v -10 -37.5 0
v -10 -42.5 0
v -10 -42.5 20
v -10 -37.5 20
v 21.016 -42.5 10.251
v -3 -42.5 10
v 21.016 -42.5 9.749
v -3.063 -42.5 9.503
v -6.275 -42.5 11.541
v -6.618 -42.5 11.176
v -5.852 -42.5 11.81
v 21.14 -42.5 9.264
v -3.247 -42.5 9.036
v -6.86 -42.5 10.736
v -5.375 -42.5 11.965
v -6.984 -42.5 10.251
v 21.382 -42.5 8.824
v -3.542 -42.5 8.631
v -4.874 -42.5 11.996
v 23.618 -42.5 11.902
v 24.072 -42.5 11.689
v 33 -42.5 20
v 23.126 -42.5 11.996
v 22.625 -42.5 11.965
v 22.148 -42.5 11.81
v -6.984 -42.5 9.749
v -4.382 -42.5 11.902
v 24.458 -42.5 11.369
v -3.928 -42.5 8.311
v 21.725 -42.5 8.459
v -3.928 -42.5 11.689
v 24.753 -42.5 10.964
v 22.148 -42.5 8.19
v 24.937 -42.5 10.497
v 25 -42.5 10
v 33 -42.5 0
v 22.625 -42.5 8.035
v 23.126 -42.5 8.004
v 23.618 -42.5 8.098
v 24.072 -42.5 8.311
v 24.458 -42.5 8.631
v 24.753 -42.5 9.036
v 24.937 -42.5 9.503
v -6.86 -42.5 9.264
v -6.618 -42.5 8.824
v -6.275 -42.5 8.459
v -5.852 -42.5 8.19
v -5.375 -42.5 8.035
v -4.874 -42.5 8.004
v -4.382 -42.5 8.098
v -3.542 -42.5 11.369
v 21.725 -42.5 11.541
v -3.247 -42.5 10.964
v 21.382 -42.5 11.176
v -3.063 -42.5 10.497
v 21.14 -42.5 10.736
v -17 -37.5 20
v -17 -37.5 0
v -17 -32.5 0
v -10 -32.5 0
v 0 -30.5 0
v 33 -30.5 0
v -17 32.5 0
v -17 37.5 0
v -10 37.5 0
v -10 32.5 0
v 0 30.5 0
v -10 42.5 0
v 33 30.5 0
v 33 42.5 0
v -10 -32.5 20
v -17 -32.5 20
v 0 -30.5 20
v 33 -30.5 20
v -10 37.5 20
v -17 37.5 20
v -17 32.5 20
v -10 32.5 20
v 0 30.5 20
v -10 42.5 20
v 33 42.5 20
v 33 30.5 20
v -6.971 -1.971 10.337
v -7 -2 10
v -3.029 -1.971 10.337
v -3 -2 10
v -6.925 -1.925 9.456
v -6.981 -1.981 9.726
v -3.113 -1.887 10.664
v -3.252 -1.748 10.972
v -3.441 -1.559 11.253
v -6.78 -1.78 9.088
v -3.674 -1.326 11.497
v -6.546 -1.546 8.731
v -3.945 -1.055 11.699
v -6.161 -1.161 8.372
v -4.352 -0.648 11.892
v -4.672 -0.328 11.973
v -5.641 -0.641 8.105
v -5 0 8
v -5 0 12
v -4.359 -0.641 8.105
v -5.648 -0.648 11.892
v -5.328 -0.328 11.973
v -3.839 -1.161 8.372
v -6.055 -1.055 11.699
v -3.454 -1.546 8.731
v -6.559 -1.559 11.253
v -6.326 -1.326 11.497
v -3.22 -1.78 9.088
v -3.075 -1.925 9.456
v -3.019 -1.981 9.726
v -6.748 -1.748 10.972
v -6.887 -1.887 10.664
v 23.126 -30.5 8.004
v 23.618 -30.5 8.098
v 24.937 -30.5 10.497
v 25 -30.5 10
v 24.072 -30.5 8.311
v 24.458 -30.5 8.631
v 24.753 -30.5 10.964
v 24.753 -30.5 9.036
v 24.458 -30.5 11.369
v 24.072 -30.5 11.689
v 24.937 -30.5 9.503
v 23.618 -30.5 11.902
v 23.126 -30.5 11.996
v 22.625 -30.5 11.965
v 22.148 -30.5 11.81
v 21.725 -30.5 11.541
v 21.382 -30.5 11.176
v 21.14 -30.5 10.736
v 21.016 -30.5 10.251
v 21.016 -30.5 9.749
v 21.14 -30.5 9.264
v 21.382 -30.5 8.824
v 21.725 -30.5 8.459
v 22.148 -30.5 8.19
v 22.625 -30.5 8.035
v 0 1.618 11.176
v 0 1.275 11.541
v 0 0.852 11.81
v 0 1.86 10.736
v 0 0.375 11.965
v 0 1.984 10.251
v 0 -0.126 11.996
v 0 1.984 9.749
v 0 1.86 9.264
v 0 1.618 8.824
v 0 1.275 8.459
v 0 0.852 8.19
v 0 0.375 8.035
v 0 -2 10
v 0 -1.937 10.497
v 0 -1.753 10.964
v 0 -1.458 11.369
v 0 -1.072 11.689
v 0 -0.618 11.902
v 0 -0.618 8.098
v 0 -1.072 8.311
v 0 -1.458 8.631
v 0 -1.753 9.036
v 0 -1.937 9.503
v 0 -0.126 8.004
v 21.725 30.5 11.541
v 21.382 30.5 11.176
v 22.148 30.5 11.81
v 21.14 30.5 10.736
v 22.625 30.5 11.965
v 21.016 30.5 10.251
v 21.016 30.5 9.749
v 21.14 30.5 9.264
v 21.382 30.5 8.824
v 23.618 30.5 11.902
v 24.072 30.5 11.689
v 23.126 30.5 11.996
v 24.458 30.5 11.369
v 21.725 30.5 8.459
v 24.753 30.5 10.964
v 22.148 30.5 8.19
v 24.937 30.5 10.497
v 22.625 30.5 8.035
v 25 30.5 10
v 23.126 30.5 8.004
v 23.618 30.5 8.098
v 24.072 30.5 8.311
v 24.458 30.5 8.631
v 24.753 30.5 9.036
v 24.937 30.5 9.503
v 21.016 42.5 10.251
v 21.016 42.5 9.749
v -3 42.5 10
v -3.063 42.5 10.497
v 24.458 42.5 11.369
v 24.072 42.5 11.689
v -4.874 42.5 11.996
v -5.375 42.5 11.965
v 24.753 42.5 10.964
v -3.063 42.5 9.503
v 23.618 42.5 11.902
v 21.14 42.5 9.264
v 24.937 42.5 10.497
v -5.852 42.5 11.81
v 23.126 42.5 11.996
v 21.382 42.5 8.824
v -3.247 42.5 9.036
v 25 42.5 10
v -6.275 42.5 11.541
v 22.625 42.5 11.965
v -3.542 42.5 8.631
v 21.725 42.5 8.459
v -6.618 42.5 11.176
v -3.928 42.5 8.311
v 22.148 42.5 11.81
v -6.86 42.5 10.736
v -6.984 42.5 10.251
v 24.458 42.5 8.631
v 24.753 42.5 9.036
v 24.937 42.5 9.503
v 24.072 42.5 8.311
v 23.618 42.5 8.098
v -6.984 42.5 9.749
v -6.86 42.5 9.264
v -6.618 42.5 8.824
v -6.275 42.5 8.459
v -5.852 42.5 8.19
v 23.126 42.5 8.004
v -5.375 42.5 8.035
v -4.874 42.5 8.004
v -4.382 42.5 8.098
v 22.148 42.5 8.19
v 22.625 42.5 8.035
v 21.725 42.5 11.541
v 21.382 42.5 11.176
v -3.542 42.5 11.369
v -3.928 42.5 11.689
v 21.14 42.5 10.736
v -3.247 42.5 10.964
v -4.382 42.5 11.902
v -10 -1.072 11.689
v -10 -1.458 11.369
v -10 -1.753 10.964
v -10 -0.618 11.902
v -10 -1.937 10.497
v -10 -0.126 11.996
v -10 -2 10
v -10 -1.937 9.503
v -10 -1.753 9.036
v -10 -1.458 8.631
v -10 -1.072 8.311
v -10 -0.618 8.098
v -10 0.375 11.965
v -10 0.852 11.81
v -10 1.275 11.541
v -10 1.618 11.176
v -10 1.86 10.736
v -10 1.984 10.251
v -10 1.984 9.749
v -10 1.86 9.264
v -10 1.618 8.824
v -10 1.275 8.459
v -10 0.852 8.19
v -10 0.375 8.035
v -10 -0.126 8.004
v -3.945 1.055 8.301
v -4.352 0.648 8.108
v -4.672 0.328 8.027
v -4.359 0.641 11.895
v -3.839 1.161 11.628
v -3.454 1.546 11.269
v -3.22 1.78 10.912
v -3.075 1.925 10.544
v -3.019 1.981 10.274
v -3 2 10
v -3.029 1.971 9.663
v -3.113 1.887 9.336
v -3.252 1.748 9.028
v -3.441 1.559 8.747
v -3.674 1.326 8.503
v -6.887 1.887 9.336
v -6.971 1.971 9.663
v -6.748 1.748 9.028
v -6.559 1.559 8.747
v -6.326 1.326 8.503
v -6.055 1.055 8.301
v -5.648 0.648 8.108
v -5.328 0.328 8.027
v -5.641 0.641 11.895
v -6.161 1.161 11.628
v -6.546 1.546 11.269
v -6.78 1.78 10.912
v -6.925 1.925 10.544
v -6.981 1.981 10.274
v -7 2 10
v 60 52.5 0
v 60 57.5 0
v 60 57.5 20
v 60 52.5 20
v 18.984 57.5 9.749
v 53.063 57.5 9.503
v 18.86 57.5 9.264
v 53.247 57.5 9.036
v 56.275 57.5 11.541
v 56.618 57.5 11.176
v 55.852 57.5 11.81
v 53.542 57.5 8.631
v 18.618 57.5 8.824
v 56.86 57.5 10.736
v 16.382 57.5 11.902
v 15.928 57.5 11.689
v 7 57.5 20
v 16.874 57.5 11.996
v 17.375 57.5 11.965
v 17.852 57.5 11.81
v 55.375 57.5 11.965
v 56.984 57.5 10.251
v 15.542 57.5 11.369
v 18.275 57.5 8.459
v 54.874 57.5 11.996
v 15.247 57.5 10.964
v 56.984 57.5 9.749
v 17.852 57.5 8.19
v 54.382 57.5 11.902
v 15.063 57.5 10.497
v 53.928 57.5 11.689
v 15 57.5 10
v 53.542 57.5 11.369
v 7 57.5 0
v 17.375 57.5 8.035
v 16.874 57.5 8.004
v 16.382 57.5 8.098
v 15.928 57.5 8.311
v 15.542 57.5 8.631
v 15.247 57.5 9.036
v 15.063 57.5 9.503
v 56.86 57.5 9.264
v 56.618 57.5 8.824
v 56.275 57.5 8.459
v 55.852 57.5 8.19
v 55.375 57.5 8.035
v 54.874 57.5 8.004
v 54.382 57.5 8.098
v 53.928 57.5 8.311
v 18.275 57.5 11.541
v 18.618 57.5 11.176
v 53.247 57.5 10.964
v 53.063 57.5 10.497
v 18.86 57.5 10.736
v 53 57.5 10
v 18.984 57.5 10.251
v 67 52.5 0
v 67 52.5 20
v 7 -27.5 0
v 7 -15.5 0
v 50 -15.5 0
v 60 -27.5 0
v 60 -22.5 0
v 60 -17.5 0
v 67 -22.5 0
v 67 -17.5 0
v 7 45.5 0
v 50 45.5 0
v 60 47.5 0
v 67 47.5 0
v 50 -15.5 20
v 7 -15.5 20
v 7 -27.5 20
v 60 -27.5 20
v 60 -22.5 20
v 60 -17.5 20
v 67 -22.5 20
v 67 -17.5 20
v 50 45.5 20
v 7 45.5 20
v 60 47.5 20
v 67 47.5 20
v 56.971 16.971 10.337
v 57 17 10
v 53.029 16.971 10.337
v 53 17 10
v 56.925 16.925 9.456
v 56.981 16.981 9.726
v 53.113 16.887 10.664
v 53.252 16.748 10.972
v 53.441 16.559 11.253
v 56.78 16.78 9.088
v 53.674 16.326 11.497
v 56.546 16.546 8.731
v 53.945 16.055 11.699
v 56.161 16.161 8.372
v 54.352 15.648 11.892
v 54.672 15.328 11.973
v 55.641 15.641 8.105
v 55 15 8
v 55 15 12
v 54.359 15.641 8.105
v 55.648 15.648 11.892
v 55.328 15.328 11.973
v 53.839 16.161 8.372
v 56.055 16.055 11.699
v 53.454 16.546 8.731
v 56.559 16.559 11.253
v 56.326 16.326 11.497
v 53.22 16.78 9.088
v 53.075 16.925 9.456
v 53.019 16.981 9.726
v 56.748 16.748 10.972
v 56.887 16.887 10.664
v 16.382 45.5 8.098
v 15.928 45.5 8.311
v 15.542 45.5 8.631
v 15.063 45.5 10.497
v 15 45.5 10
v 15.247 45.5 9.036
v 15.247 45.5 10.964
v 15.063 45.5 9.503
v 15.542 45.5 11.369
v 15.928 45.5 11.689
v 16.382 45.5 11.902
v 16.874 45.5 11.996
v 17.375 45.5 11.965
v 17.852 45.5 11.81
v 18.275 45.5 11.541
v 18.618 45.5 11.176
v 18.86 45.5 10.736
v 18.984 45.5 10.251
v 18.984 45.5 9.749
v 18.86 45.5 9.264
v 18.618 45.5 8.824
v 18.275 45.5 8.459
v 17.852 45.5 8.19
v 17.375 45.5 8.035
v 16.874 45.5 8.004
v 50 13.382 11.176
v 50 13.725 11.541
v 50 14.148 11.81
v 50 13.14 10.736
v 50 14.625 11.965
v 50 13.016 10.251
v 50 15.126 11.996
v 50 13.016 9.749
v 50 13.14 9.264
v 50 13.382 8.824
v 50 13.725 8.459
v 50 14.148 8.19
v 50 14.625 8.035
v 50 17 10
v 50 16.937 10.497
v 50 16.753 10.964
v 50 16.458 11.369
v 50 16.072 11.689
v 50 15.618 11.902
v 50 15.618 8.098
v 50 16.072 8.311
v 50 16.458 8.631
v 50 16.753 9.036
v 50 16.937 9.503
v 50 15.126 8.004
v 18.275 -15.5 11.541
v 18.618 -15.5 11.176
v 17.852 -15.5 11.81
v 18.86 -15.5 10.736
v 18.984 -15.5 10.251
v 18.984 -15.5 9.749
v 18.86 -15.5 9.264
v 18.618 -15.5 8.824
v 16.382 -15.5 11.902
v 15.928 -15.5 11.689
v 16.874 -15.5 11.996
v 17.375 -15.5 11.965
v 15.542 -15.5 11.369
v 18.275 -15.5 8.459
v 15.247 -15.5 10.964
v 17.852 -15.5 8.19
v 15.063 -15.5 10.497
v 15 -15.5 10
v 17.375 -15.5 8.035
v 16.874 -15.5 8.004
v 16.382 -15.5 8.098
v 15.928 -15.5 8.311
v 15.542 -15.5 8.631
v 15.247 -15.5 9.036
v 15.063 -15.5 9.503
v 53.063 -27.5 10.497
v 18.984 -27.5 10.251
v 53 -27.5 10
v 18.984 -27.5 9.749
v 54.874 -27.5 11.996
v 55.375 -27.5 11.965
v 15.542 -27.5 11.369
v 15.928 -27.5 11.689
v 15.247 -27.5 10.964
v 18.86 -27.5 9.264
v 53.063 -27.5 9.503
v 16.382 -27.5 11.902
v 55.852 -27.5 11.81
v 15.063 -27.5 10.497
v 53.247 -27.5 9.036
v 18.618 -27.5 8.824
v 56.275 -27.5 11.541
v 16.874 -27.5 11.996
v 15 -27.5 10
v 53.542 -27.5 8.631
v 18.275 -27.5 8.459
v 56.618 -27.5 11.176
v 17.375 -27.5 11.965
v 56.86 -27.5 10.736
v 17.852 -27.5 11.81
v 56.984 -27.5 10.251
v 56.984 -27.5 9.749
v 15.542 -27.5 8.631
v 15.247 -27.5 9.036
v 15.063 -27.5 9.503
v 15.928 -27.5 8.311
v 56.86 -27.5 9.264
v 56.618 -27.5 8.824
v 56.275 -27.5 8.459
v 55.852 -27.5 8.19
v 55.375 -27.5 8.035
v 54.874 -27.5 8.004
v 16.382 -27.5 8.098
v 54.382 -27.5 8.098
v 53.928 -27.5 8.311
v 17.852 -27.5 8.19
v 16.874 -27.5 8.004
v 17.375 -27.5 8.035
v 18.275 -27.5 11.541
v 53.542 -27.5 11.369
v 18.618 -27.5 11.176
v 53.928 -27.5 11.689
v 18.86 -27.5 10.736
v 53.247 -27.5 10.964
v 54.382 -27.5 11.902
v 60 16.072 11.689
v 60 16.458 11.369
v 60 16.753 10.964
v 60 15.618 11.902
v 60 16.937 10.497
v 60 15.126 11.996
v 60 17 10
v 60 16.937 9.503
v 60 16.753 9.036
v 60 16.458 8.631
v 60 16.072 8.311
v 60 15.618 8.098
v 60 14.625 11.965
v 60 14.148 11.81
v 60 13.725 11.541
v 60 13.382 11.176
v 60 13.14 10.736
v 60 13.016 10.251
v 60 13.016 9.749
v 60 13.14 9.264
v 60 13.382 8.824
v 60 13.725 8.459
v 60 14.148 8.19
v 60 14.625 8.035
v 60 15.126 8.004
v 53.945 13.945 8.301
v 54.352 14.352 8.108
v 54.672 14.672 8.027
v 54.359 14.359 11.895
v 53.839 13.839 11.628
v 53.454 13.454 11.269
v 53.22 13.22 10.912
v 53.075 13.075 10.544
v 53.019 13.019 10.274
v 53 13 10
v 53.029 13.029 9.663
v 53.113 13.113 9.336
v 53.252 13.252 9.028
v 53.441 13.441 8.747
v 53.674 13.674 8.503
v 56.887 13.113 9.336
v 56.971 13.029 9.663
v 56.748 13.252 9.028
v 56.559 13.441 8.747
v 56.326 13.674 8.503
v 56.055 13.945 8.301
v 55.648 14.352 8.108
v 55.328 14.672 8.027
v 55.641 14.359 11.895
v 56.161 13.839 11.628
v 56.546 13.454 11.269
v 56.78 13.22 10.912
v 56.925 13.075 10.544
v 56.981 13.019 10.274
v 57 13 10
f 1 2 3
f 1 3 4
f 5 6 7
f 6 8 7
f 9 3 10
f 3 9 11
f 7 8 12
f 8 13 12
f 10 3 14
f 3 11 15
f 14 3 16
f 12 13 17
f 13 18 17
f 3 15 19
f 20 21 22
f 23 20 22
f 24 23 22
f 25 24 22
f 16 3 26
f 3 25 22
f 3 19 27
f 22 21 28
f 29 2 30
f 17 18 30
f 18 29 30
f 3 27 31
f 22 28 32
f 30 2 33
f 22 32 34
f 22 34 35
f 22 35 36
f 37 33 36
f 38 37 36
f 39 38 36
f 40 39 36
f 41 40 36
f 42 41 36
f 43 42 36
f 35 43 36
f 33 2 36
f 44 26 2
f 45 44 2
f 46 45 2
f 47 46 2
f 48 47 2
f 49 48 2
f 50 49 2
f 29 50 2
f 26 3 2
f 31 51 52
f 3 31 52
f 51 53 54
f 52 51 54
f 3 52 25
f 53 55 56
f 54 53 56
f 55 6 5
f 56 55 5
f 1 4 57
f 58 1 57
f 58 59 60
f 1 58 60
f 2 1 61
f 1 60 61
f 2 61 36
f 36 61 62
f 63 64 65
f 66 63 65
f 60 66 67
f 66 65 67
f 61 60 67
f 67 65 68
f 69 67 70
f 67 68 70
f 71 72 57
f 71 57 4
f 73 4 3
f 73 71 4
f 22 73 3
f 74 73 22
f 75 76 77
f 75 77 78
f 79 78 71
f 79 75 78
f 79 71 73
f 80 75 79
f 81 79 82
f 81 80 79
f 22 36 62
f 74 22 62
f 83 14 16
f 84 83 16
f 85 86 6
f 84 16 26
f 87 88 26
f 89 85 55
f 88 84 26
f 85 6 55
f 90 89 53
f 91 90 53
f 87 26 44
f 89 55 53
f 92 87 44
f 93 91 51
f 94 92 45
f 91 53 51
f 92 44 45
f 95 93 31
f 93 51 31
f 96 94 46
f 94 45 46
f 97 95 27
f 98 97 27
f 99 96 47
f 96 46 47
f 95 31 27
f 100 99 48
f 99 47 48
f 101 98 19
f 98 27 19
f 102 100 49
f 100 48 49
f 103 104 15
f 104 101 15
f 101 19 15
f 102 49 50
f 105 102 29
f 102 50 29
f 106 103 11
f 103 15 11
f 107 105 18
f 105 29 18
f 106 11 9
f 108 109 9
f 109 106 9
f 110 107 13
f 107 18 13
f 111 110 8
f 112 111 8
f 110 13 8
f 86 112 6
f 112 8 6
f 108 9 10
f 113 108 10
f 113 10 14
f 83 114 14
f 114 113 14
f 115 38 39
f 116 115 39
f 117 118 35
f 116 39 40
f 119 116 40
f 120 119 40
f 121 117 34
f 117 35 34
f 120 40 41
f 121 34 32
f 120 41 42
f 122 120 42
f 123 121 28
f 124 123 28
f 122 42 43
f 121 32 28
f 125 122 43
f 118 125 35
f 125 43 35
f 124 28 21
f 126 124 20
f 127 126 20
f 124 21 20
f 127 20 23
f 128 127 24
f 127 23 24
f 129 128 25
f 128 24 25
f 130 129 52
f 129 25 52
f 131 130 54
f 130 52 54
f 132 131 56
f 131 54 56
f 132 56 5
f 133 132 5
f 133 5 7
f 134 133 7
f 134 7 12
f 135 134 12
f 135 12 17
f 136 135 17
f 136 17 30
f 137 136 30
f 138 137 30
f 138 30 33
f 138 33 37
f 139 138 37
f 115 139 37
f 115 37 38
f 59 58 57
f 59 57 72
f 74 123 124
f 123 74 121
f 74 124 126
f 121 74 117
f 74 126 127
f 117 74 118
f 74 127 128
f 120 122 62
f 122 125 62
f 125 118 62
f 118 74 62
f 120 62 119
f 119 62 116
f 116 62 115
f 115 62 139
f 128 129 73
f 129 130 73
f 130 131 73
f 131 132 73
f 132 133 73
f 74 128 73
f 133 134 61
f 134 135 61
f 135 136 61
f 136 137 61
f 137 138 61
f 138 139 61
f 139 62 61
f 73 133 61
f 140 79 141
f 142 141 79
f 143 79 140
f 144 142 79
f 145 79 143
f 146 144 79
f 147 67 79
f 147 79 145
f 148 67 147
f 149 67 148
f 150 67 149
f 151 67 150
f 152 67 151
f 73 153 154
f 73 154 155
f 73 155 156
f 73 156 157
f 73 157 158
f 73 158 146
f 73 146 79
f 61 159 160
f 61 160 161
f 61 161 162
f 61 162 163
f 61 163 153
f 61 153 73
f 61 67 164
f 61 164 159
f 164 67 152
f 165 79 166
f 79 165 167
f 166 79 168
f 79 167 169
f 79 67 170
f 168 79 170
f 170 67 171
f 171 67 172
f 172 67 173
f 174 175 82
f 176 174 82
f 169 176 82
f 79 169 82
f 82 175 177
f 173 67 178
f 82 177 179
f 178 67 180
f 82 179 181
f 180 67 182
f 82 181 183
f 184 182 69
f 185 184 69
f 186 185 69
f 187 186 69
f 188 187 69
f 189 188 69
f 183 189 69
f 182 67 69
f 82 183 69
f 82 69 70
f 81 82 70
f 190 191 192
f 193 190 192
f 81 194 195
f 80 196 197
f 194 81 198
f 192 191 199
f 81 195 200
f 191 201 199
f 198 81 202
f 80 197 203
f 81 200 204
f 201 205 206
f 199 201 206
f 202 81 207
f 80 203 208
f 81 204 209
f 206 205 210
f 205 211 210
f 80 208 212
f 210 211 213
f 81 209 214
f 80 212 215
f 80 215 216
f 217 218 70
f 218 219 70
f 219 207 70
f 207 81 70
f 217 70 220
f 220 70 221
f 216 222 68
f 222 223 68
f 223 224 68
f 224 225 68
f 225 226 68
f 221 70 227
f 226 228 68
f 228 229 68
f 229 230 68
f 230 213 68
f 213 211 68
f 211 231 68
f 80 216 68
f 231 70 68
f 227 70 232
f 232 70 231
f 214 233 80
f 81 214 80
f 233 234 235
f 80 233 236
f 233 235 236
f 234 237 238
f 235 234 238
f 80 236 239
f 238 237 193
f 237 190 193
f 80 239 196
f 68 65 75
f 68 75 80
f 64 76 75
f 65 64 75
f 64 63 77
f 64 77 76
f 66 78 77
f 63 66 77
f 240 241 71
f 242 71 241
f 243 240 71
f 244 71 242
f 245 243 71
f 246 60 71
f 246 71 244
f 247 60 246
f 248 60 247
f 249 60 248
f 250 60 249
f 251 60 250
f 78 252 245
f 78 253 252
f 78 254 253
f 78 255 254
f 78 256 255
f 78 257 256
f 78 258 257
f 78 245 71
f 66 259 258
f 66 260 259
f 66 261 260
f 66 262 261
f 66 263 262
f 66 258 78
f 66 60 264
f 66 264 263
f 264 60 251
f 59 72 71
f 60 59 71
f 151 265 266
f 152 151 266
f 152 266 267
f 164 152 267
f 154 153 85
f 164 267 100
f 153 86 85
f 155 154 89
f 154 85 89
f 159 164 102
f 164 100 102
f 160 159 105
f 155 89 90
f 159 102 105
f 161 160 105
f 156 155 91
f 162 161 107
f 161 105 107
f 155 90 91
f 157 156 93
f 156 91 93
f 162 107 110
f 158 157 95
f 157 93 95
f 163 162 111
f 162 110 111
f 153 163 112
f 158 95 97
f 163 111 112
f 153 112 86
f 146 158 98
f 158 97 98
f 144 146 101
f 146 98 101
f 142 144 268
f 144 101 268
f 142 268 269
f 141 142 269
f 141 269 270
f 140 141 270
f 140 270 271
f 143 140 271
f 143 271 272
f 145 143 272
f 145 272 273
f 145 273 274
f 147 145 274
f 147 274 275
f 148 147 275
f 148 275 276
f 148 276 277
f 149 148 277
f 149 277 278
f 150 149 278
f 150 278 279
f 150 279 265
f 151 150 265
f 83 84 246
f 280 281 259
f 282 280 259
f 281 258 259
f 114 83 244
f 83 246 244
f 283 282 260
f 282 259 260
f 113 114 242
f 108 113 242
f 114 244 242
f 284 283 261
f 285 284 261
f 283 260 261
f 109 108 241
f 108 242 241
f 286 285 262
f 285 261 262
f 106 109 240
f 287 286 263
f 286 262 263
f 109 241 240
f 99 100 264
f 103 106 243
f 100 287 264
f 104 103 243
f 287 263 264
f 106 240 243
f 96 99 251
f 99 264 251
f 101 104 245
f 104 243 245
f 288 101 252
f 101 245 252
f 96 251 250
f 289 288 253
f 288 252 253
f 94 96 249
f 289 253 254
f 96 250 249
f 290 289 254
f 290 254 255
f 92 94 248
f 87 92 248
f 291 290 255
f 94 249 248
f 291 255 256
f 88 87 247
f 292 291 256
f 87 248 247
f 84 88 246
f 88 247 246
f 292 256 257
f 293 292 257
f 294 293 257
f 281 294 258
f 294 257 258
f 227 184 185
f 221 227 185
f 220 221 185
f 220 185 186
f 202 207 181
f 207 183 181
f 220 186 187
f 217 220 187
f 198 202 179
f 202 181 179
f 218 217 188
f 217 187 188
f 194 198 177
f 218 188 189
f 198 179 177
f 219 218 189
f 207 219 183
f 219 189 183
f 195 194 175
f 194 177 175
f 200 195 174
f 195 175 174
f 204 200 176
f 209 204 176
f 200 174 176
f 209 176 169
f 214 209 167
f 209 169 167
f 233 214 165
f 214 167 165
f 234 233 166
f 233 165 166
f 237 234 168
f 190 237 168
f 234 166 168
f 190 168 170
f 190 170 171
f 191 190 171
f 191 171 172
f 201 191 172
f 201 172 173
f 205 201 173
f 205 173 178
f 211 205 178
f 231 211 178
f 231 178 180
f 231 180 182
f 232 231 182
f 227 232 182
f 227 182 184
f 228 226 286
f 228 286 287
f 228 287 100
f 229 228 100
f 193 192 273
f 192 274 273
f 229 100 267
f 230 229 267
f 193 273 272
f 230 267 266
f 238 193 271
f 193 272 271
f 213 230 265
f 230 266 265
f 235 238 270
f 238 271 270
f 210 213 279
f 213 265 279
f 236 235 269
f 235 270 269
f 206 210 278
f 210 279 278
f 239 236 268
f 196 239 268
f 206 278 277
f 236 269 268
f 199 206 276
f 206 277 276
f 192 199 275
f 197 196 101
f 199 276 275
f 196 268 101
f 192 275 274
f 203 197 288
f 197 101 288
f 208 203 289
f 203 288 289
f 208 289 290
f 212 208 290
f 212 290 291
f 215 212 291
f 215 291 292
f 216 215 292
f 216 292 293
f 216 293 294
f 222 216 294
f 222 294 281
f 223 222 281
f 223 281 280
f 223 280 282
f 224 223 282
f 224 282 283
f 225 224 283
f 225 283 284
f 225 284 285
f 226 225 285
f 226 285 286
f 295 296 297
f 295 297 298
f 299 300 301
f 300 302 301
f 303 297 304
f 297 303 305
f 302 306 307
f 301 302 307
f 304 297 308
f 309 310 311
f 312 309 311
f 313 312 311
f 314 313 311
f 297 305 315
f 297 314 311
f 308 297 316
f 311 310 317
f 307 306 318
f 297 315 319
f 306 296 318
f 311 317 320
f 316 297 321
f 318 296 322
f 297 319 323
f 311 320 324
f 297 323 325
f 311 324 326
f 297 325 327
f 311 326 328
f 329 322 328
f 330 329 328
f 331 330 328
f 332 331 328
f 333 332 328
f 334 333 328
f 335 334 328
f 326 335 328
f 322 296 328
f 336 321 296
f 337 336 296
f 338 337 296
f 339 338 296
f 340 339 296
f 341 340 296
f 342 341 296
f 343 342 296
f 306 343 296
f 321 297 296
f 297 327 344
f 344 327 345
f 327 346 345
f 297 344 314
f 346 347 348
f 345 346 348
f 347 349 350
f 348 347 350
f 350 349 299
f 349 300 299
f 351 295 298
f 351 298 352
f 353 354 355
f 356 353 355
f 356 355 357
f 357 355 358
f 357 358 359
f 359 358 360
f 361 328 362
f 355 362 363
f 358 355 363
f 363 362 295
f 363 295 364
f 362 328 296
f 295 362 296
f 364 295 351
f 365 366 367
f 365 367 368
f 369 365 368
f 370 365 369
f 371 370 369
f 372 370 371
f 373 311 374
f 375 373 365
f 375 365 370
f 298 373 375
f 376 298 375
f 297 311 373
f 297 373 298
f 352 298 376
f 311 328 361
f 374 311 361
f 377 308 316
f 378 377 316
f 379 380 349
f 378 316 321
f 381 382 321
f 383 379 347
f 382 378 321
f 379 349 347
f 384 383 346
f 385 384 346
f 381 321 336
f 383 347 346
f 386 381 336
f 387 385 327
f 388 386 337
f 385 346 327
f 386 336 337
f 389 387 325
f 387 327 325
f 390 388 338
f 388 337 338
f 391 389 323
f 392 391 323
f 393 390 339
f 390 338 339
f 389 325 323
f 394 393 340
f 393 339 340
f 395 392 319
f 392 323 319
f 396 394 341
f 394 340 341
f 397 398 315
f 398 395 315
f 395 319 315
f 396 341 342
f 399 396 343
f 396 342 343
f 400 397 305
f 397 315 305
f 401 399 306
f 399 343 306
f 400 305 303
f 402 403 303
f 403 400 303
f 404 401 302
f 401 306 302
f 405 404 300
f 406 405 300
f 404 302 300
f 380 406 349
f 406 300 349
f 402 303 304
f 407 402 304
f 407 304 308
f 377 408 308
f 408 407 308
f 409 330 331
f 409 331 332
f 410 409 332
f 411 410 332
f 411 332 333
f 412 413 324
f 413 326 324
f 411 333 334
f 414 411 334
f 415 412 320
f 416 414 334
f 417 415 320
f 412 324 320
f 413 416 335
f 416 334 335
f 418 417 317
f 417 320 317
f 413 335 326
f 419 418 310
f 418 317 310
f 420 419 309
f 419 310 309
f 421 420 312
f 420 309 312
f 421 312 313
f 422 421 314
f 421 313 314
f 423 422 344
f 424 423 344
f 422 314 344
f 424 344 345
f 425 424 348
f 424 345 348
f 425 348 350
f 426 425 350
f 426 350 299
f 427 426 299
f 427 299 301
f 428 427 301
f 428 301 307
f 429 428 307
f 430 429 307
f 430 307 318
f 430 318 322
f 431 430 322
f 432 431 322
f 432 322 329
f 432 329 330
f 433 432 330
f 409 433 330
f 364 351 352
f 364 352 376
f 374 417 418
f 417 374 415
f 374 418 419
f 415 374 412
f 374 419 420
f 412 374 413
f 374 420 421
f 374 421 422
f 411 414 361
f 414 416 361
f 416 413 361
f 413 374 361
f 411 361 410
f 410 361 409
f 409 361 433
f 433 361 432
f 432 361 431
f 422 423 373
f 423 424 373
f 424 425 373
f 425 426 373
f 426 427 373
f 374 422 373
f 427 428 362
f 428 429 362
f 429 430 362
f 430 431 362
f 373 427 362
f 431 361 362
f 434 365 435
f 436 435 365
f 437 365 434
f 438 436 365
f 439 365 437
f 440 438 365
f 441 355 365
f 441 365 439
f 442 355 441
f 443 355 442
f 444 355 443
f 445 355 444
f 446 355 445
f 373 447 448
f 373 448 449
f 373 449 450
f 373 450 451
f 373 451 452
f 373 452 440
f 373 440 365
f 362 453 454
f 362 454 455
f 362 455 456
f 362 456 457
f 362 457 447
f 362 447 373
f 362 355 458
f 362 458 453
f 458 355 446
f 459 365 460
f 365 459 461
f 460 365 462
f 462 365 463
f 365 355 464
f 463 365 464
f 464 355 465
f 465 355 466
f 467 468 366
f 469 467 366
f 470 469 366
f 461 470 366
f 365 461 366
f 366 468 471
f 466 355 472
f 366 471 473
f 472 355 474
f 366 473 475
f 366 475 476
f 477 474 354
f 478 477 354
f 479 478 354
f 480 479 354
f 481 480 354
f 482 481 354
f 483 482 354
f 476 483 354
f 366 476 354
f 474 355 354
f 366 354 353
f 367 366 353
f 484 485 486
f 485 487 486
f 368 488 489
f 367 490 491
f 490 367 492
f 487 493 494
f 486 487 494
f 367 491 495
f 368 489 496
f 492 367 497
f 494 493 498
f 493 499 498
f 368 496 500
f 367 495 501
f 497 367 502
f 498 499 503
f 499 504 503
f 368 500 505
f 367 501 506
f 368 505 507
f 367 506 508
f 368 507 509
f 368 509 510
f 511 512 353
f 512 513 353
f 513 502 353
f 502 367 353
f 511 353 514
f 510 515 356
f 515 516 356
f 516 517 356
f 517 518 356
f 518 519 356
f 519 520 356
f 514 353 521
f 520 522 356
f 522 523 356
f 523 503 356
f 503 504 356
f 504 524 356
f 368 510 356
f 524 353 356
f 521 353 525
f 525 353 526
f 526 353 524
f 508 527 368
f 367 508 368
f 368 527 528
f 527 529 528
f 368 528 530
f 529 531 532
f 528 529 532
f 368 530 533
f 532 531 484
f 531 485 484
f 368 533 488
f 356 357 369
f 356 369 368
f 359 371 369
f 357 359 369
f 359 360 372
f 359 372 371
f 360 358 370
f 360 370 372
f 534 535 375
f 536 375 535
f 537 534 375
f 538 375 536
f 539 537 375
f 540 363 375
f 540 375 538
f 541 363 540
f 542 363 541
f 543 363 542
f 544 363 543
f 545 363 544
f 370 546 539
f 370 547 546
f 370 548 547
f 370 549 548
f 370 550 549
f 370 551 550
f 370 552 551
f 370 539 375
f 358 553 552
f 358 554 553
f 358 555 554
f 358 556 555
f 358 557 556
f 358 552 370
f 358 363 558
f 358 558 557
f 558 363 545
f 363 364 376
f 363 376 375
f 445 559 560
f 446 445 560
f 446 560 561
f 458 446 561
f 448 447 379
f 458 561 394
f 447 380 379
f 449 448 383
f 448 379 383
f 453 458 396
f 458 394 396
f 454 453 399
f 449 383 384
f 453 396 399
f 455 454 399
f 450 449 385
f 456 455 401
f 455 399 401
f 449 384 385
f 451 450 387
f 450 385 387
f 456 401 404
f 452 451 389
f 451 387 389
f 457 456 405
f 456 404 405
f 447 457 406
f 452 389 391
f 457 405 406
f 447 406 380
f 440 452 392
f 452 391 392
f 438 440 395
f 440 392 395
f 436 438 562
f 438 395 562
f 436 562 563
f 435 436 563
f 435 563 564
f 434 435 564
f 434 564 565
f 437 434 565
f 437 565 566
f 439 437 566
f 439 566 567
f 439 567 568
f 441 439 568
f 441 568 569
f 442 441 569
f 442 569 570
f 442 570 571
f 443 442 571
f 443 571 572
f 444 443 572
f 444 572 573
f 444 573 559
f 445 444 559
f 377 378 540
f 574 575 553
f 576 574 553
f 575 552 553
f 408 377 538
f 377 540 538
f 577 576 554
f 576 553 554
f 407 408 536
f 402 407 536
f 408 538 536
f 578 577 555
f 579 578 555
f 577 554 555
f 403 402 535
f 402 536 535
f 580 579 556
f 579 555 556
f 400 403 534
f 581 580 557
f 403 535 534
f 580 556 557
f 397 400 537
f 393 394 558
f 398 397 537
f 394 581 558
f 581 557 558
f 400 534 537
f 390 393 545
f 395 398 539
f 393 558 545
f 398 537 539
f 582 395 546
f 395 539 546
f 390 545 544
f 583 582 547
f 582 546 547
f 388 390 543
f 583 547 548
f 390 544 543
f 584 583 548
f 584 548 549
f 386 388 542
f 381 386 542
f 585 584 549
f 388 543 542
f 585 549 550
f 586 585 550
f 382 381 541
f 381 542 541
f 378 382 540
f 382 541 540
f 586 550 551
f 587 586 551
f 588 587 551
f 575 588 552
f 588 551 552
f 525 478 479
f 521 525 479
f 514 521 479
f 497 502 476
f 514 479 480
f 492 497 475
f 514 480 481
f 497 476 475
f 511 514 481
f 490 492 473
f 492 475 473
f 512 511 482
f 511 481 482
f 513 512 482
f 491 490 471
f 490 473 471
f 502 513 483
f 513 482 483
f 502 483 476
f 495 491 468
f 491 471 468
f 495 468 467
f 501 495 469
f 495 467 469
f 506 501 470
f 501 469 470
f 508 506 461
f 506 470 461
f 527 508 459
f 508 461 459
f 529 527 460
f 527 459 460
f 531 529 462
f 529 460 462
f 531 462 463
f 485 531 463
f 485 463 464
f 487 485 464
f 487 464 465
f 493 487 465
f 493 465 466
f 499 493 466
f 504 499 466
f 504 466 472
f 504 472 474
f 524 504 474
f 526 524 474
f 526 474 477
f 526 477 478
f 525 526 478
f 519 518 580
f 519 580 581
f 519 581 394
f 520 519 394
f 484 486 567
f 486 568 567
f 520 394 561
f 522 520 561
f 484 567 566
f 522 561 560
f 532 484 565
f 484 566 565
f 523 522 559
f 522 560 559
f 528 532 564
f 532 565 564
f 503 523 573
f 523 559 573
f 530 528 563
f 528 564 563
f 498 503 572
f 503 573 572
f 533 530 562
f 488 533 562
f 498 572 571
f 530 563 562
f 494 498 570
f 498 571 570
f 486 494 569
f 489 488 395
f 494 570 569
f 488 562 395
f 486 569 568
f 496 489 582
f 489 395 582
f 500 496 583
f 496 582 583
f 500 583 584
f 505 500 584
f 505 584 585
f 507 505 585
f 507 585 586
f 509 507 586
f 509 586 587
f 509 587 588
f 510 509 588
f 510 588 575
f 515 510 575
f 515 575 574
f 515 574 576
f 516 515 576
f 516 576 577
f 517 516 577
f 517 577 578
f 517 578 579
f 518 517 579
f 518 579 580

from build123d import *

# Parameters (mm, degrees)
PAD_DEPTH       = 20
SKETCH004_R     = 2
POCKET002_DEPTH = 43.001
SKETCH005_R     = 2
POCKET003_DEPTH = 85.001
PAD001_DEPTH    = 20
SKETCH007_R     = 2
POCKET004_DEPTH = 53.001
SKETCH008_R     = 2
POCKET005_DEPTH = 85.001


with BuildPart() as soporte_agujero_superior_lateral:
    # Sketch → Pad (new body)
    with BuildSketch(Plane.XY):
        Polygon((-10, -42.5), (33, -42.5), (33, -30.5), (0, -30.5), (0, 30.5), (33, 30.5), (33, 42.5), (-10, 42.5), (-10, 37.5), (-17, 37.5), (-17, 32.5), (-10, 32.5), (-10, -32.5), (-17, -32.5), (-17, -37.5), (-10, -37.5), align=None)
    extrude(amount=PAD_DEPTH)

    # Sketch004 → Pocket002 (cut, through all)
    with BuildSketch(Plane(origin=(-10, 0, 0), x_dir=(0, -1, 0), z_dir=(-1, 0, 0))):
        with Locations((0, 10)):
            Circle(SKETCH004_R)
    extrude(amount=-POCKET002_DEPTH, mode=Mode.SUBTRACT)

    # Sketch005 → Pocket003 (cut, through all)
    with BuildSketch(Plane.XZ.offset(42.5)):
        with Locations((-5, 10)):
            Circle(SKETCH005_R)
        with Locations((23, 10)):
            Circle(SKETCH005_R)
    extrude(amount=-POCKET003_DEPTH, mode=Mode.SUBTRACT)


with BuildPart() as soporte_agujero_superior_lateral001:
    # Sketch006 → Pad001 (new body)
    with BuildSketch(Plane(origin=(50, 15, 0), x_dir=(-1, 0, 0), z_dir=(0, 0, 1))):
        Polygon((-10, -42.5), (43, -42.5), (43, -30.5), (0, -30.5), (0, 30.5), (43, 30.5), (43, 42.5), (-10, 42.5), (-10, 37.5), (-17, 37.5), (-17, 32.5), (-10, 32.5), (-10, -32.5), (-17, -32.5), (-17, -37.5), (-10, -37.5), align=None)
    extrude(amount=PAD001_DEPTH)

    # Sketch007 → Pocket004 (cut, through all)
    with BuildSketch(Plane(origin=(60, 15, 0), x_dir=(0, 1, 0), z_dir=(1, 0, 0))):
        with Locations((0, 10)):
            Circle(SKETCH007_R)
    extrude(amount=-POCKET004_DEPTH, mode=Mode.SUBTRACT)

    # Sketch008 → Pocket005 (cut, through all)
    with BuildSketch(Plane(origin=(50, 57.5, 0), x_dir=(-1, 0, 0), z_dir=(0, 1, 0))):
        with Locations((-5, 10)):
            Circle(SKETCH008_R)
        with Locations((33, 10)):
            Circle(SKETCH008_R)
    extrude(amount=-POCKET005_DEPTH, mode=Mode.SUBTRACT)


solid = Compound([soporte_agujero_superior_lateral.part, soporte_agujero_superior_lateral001.part])
